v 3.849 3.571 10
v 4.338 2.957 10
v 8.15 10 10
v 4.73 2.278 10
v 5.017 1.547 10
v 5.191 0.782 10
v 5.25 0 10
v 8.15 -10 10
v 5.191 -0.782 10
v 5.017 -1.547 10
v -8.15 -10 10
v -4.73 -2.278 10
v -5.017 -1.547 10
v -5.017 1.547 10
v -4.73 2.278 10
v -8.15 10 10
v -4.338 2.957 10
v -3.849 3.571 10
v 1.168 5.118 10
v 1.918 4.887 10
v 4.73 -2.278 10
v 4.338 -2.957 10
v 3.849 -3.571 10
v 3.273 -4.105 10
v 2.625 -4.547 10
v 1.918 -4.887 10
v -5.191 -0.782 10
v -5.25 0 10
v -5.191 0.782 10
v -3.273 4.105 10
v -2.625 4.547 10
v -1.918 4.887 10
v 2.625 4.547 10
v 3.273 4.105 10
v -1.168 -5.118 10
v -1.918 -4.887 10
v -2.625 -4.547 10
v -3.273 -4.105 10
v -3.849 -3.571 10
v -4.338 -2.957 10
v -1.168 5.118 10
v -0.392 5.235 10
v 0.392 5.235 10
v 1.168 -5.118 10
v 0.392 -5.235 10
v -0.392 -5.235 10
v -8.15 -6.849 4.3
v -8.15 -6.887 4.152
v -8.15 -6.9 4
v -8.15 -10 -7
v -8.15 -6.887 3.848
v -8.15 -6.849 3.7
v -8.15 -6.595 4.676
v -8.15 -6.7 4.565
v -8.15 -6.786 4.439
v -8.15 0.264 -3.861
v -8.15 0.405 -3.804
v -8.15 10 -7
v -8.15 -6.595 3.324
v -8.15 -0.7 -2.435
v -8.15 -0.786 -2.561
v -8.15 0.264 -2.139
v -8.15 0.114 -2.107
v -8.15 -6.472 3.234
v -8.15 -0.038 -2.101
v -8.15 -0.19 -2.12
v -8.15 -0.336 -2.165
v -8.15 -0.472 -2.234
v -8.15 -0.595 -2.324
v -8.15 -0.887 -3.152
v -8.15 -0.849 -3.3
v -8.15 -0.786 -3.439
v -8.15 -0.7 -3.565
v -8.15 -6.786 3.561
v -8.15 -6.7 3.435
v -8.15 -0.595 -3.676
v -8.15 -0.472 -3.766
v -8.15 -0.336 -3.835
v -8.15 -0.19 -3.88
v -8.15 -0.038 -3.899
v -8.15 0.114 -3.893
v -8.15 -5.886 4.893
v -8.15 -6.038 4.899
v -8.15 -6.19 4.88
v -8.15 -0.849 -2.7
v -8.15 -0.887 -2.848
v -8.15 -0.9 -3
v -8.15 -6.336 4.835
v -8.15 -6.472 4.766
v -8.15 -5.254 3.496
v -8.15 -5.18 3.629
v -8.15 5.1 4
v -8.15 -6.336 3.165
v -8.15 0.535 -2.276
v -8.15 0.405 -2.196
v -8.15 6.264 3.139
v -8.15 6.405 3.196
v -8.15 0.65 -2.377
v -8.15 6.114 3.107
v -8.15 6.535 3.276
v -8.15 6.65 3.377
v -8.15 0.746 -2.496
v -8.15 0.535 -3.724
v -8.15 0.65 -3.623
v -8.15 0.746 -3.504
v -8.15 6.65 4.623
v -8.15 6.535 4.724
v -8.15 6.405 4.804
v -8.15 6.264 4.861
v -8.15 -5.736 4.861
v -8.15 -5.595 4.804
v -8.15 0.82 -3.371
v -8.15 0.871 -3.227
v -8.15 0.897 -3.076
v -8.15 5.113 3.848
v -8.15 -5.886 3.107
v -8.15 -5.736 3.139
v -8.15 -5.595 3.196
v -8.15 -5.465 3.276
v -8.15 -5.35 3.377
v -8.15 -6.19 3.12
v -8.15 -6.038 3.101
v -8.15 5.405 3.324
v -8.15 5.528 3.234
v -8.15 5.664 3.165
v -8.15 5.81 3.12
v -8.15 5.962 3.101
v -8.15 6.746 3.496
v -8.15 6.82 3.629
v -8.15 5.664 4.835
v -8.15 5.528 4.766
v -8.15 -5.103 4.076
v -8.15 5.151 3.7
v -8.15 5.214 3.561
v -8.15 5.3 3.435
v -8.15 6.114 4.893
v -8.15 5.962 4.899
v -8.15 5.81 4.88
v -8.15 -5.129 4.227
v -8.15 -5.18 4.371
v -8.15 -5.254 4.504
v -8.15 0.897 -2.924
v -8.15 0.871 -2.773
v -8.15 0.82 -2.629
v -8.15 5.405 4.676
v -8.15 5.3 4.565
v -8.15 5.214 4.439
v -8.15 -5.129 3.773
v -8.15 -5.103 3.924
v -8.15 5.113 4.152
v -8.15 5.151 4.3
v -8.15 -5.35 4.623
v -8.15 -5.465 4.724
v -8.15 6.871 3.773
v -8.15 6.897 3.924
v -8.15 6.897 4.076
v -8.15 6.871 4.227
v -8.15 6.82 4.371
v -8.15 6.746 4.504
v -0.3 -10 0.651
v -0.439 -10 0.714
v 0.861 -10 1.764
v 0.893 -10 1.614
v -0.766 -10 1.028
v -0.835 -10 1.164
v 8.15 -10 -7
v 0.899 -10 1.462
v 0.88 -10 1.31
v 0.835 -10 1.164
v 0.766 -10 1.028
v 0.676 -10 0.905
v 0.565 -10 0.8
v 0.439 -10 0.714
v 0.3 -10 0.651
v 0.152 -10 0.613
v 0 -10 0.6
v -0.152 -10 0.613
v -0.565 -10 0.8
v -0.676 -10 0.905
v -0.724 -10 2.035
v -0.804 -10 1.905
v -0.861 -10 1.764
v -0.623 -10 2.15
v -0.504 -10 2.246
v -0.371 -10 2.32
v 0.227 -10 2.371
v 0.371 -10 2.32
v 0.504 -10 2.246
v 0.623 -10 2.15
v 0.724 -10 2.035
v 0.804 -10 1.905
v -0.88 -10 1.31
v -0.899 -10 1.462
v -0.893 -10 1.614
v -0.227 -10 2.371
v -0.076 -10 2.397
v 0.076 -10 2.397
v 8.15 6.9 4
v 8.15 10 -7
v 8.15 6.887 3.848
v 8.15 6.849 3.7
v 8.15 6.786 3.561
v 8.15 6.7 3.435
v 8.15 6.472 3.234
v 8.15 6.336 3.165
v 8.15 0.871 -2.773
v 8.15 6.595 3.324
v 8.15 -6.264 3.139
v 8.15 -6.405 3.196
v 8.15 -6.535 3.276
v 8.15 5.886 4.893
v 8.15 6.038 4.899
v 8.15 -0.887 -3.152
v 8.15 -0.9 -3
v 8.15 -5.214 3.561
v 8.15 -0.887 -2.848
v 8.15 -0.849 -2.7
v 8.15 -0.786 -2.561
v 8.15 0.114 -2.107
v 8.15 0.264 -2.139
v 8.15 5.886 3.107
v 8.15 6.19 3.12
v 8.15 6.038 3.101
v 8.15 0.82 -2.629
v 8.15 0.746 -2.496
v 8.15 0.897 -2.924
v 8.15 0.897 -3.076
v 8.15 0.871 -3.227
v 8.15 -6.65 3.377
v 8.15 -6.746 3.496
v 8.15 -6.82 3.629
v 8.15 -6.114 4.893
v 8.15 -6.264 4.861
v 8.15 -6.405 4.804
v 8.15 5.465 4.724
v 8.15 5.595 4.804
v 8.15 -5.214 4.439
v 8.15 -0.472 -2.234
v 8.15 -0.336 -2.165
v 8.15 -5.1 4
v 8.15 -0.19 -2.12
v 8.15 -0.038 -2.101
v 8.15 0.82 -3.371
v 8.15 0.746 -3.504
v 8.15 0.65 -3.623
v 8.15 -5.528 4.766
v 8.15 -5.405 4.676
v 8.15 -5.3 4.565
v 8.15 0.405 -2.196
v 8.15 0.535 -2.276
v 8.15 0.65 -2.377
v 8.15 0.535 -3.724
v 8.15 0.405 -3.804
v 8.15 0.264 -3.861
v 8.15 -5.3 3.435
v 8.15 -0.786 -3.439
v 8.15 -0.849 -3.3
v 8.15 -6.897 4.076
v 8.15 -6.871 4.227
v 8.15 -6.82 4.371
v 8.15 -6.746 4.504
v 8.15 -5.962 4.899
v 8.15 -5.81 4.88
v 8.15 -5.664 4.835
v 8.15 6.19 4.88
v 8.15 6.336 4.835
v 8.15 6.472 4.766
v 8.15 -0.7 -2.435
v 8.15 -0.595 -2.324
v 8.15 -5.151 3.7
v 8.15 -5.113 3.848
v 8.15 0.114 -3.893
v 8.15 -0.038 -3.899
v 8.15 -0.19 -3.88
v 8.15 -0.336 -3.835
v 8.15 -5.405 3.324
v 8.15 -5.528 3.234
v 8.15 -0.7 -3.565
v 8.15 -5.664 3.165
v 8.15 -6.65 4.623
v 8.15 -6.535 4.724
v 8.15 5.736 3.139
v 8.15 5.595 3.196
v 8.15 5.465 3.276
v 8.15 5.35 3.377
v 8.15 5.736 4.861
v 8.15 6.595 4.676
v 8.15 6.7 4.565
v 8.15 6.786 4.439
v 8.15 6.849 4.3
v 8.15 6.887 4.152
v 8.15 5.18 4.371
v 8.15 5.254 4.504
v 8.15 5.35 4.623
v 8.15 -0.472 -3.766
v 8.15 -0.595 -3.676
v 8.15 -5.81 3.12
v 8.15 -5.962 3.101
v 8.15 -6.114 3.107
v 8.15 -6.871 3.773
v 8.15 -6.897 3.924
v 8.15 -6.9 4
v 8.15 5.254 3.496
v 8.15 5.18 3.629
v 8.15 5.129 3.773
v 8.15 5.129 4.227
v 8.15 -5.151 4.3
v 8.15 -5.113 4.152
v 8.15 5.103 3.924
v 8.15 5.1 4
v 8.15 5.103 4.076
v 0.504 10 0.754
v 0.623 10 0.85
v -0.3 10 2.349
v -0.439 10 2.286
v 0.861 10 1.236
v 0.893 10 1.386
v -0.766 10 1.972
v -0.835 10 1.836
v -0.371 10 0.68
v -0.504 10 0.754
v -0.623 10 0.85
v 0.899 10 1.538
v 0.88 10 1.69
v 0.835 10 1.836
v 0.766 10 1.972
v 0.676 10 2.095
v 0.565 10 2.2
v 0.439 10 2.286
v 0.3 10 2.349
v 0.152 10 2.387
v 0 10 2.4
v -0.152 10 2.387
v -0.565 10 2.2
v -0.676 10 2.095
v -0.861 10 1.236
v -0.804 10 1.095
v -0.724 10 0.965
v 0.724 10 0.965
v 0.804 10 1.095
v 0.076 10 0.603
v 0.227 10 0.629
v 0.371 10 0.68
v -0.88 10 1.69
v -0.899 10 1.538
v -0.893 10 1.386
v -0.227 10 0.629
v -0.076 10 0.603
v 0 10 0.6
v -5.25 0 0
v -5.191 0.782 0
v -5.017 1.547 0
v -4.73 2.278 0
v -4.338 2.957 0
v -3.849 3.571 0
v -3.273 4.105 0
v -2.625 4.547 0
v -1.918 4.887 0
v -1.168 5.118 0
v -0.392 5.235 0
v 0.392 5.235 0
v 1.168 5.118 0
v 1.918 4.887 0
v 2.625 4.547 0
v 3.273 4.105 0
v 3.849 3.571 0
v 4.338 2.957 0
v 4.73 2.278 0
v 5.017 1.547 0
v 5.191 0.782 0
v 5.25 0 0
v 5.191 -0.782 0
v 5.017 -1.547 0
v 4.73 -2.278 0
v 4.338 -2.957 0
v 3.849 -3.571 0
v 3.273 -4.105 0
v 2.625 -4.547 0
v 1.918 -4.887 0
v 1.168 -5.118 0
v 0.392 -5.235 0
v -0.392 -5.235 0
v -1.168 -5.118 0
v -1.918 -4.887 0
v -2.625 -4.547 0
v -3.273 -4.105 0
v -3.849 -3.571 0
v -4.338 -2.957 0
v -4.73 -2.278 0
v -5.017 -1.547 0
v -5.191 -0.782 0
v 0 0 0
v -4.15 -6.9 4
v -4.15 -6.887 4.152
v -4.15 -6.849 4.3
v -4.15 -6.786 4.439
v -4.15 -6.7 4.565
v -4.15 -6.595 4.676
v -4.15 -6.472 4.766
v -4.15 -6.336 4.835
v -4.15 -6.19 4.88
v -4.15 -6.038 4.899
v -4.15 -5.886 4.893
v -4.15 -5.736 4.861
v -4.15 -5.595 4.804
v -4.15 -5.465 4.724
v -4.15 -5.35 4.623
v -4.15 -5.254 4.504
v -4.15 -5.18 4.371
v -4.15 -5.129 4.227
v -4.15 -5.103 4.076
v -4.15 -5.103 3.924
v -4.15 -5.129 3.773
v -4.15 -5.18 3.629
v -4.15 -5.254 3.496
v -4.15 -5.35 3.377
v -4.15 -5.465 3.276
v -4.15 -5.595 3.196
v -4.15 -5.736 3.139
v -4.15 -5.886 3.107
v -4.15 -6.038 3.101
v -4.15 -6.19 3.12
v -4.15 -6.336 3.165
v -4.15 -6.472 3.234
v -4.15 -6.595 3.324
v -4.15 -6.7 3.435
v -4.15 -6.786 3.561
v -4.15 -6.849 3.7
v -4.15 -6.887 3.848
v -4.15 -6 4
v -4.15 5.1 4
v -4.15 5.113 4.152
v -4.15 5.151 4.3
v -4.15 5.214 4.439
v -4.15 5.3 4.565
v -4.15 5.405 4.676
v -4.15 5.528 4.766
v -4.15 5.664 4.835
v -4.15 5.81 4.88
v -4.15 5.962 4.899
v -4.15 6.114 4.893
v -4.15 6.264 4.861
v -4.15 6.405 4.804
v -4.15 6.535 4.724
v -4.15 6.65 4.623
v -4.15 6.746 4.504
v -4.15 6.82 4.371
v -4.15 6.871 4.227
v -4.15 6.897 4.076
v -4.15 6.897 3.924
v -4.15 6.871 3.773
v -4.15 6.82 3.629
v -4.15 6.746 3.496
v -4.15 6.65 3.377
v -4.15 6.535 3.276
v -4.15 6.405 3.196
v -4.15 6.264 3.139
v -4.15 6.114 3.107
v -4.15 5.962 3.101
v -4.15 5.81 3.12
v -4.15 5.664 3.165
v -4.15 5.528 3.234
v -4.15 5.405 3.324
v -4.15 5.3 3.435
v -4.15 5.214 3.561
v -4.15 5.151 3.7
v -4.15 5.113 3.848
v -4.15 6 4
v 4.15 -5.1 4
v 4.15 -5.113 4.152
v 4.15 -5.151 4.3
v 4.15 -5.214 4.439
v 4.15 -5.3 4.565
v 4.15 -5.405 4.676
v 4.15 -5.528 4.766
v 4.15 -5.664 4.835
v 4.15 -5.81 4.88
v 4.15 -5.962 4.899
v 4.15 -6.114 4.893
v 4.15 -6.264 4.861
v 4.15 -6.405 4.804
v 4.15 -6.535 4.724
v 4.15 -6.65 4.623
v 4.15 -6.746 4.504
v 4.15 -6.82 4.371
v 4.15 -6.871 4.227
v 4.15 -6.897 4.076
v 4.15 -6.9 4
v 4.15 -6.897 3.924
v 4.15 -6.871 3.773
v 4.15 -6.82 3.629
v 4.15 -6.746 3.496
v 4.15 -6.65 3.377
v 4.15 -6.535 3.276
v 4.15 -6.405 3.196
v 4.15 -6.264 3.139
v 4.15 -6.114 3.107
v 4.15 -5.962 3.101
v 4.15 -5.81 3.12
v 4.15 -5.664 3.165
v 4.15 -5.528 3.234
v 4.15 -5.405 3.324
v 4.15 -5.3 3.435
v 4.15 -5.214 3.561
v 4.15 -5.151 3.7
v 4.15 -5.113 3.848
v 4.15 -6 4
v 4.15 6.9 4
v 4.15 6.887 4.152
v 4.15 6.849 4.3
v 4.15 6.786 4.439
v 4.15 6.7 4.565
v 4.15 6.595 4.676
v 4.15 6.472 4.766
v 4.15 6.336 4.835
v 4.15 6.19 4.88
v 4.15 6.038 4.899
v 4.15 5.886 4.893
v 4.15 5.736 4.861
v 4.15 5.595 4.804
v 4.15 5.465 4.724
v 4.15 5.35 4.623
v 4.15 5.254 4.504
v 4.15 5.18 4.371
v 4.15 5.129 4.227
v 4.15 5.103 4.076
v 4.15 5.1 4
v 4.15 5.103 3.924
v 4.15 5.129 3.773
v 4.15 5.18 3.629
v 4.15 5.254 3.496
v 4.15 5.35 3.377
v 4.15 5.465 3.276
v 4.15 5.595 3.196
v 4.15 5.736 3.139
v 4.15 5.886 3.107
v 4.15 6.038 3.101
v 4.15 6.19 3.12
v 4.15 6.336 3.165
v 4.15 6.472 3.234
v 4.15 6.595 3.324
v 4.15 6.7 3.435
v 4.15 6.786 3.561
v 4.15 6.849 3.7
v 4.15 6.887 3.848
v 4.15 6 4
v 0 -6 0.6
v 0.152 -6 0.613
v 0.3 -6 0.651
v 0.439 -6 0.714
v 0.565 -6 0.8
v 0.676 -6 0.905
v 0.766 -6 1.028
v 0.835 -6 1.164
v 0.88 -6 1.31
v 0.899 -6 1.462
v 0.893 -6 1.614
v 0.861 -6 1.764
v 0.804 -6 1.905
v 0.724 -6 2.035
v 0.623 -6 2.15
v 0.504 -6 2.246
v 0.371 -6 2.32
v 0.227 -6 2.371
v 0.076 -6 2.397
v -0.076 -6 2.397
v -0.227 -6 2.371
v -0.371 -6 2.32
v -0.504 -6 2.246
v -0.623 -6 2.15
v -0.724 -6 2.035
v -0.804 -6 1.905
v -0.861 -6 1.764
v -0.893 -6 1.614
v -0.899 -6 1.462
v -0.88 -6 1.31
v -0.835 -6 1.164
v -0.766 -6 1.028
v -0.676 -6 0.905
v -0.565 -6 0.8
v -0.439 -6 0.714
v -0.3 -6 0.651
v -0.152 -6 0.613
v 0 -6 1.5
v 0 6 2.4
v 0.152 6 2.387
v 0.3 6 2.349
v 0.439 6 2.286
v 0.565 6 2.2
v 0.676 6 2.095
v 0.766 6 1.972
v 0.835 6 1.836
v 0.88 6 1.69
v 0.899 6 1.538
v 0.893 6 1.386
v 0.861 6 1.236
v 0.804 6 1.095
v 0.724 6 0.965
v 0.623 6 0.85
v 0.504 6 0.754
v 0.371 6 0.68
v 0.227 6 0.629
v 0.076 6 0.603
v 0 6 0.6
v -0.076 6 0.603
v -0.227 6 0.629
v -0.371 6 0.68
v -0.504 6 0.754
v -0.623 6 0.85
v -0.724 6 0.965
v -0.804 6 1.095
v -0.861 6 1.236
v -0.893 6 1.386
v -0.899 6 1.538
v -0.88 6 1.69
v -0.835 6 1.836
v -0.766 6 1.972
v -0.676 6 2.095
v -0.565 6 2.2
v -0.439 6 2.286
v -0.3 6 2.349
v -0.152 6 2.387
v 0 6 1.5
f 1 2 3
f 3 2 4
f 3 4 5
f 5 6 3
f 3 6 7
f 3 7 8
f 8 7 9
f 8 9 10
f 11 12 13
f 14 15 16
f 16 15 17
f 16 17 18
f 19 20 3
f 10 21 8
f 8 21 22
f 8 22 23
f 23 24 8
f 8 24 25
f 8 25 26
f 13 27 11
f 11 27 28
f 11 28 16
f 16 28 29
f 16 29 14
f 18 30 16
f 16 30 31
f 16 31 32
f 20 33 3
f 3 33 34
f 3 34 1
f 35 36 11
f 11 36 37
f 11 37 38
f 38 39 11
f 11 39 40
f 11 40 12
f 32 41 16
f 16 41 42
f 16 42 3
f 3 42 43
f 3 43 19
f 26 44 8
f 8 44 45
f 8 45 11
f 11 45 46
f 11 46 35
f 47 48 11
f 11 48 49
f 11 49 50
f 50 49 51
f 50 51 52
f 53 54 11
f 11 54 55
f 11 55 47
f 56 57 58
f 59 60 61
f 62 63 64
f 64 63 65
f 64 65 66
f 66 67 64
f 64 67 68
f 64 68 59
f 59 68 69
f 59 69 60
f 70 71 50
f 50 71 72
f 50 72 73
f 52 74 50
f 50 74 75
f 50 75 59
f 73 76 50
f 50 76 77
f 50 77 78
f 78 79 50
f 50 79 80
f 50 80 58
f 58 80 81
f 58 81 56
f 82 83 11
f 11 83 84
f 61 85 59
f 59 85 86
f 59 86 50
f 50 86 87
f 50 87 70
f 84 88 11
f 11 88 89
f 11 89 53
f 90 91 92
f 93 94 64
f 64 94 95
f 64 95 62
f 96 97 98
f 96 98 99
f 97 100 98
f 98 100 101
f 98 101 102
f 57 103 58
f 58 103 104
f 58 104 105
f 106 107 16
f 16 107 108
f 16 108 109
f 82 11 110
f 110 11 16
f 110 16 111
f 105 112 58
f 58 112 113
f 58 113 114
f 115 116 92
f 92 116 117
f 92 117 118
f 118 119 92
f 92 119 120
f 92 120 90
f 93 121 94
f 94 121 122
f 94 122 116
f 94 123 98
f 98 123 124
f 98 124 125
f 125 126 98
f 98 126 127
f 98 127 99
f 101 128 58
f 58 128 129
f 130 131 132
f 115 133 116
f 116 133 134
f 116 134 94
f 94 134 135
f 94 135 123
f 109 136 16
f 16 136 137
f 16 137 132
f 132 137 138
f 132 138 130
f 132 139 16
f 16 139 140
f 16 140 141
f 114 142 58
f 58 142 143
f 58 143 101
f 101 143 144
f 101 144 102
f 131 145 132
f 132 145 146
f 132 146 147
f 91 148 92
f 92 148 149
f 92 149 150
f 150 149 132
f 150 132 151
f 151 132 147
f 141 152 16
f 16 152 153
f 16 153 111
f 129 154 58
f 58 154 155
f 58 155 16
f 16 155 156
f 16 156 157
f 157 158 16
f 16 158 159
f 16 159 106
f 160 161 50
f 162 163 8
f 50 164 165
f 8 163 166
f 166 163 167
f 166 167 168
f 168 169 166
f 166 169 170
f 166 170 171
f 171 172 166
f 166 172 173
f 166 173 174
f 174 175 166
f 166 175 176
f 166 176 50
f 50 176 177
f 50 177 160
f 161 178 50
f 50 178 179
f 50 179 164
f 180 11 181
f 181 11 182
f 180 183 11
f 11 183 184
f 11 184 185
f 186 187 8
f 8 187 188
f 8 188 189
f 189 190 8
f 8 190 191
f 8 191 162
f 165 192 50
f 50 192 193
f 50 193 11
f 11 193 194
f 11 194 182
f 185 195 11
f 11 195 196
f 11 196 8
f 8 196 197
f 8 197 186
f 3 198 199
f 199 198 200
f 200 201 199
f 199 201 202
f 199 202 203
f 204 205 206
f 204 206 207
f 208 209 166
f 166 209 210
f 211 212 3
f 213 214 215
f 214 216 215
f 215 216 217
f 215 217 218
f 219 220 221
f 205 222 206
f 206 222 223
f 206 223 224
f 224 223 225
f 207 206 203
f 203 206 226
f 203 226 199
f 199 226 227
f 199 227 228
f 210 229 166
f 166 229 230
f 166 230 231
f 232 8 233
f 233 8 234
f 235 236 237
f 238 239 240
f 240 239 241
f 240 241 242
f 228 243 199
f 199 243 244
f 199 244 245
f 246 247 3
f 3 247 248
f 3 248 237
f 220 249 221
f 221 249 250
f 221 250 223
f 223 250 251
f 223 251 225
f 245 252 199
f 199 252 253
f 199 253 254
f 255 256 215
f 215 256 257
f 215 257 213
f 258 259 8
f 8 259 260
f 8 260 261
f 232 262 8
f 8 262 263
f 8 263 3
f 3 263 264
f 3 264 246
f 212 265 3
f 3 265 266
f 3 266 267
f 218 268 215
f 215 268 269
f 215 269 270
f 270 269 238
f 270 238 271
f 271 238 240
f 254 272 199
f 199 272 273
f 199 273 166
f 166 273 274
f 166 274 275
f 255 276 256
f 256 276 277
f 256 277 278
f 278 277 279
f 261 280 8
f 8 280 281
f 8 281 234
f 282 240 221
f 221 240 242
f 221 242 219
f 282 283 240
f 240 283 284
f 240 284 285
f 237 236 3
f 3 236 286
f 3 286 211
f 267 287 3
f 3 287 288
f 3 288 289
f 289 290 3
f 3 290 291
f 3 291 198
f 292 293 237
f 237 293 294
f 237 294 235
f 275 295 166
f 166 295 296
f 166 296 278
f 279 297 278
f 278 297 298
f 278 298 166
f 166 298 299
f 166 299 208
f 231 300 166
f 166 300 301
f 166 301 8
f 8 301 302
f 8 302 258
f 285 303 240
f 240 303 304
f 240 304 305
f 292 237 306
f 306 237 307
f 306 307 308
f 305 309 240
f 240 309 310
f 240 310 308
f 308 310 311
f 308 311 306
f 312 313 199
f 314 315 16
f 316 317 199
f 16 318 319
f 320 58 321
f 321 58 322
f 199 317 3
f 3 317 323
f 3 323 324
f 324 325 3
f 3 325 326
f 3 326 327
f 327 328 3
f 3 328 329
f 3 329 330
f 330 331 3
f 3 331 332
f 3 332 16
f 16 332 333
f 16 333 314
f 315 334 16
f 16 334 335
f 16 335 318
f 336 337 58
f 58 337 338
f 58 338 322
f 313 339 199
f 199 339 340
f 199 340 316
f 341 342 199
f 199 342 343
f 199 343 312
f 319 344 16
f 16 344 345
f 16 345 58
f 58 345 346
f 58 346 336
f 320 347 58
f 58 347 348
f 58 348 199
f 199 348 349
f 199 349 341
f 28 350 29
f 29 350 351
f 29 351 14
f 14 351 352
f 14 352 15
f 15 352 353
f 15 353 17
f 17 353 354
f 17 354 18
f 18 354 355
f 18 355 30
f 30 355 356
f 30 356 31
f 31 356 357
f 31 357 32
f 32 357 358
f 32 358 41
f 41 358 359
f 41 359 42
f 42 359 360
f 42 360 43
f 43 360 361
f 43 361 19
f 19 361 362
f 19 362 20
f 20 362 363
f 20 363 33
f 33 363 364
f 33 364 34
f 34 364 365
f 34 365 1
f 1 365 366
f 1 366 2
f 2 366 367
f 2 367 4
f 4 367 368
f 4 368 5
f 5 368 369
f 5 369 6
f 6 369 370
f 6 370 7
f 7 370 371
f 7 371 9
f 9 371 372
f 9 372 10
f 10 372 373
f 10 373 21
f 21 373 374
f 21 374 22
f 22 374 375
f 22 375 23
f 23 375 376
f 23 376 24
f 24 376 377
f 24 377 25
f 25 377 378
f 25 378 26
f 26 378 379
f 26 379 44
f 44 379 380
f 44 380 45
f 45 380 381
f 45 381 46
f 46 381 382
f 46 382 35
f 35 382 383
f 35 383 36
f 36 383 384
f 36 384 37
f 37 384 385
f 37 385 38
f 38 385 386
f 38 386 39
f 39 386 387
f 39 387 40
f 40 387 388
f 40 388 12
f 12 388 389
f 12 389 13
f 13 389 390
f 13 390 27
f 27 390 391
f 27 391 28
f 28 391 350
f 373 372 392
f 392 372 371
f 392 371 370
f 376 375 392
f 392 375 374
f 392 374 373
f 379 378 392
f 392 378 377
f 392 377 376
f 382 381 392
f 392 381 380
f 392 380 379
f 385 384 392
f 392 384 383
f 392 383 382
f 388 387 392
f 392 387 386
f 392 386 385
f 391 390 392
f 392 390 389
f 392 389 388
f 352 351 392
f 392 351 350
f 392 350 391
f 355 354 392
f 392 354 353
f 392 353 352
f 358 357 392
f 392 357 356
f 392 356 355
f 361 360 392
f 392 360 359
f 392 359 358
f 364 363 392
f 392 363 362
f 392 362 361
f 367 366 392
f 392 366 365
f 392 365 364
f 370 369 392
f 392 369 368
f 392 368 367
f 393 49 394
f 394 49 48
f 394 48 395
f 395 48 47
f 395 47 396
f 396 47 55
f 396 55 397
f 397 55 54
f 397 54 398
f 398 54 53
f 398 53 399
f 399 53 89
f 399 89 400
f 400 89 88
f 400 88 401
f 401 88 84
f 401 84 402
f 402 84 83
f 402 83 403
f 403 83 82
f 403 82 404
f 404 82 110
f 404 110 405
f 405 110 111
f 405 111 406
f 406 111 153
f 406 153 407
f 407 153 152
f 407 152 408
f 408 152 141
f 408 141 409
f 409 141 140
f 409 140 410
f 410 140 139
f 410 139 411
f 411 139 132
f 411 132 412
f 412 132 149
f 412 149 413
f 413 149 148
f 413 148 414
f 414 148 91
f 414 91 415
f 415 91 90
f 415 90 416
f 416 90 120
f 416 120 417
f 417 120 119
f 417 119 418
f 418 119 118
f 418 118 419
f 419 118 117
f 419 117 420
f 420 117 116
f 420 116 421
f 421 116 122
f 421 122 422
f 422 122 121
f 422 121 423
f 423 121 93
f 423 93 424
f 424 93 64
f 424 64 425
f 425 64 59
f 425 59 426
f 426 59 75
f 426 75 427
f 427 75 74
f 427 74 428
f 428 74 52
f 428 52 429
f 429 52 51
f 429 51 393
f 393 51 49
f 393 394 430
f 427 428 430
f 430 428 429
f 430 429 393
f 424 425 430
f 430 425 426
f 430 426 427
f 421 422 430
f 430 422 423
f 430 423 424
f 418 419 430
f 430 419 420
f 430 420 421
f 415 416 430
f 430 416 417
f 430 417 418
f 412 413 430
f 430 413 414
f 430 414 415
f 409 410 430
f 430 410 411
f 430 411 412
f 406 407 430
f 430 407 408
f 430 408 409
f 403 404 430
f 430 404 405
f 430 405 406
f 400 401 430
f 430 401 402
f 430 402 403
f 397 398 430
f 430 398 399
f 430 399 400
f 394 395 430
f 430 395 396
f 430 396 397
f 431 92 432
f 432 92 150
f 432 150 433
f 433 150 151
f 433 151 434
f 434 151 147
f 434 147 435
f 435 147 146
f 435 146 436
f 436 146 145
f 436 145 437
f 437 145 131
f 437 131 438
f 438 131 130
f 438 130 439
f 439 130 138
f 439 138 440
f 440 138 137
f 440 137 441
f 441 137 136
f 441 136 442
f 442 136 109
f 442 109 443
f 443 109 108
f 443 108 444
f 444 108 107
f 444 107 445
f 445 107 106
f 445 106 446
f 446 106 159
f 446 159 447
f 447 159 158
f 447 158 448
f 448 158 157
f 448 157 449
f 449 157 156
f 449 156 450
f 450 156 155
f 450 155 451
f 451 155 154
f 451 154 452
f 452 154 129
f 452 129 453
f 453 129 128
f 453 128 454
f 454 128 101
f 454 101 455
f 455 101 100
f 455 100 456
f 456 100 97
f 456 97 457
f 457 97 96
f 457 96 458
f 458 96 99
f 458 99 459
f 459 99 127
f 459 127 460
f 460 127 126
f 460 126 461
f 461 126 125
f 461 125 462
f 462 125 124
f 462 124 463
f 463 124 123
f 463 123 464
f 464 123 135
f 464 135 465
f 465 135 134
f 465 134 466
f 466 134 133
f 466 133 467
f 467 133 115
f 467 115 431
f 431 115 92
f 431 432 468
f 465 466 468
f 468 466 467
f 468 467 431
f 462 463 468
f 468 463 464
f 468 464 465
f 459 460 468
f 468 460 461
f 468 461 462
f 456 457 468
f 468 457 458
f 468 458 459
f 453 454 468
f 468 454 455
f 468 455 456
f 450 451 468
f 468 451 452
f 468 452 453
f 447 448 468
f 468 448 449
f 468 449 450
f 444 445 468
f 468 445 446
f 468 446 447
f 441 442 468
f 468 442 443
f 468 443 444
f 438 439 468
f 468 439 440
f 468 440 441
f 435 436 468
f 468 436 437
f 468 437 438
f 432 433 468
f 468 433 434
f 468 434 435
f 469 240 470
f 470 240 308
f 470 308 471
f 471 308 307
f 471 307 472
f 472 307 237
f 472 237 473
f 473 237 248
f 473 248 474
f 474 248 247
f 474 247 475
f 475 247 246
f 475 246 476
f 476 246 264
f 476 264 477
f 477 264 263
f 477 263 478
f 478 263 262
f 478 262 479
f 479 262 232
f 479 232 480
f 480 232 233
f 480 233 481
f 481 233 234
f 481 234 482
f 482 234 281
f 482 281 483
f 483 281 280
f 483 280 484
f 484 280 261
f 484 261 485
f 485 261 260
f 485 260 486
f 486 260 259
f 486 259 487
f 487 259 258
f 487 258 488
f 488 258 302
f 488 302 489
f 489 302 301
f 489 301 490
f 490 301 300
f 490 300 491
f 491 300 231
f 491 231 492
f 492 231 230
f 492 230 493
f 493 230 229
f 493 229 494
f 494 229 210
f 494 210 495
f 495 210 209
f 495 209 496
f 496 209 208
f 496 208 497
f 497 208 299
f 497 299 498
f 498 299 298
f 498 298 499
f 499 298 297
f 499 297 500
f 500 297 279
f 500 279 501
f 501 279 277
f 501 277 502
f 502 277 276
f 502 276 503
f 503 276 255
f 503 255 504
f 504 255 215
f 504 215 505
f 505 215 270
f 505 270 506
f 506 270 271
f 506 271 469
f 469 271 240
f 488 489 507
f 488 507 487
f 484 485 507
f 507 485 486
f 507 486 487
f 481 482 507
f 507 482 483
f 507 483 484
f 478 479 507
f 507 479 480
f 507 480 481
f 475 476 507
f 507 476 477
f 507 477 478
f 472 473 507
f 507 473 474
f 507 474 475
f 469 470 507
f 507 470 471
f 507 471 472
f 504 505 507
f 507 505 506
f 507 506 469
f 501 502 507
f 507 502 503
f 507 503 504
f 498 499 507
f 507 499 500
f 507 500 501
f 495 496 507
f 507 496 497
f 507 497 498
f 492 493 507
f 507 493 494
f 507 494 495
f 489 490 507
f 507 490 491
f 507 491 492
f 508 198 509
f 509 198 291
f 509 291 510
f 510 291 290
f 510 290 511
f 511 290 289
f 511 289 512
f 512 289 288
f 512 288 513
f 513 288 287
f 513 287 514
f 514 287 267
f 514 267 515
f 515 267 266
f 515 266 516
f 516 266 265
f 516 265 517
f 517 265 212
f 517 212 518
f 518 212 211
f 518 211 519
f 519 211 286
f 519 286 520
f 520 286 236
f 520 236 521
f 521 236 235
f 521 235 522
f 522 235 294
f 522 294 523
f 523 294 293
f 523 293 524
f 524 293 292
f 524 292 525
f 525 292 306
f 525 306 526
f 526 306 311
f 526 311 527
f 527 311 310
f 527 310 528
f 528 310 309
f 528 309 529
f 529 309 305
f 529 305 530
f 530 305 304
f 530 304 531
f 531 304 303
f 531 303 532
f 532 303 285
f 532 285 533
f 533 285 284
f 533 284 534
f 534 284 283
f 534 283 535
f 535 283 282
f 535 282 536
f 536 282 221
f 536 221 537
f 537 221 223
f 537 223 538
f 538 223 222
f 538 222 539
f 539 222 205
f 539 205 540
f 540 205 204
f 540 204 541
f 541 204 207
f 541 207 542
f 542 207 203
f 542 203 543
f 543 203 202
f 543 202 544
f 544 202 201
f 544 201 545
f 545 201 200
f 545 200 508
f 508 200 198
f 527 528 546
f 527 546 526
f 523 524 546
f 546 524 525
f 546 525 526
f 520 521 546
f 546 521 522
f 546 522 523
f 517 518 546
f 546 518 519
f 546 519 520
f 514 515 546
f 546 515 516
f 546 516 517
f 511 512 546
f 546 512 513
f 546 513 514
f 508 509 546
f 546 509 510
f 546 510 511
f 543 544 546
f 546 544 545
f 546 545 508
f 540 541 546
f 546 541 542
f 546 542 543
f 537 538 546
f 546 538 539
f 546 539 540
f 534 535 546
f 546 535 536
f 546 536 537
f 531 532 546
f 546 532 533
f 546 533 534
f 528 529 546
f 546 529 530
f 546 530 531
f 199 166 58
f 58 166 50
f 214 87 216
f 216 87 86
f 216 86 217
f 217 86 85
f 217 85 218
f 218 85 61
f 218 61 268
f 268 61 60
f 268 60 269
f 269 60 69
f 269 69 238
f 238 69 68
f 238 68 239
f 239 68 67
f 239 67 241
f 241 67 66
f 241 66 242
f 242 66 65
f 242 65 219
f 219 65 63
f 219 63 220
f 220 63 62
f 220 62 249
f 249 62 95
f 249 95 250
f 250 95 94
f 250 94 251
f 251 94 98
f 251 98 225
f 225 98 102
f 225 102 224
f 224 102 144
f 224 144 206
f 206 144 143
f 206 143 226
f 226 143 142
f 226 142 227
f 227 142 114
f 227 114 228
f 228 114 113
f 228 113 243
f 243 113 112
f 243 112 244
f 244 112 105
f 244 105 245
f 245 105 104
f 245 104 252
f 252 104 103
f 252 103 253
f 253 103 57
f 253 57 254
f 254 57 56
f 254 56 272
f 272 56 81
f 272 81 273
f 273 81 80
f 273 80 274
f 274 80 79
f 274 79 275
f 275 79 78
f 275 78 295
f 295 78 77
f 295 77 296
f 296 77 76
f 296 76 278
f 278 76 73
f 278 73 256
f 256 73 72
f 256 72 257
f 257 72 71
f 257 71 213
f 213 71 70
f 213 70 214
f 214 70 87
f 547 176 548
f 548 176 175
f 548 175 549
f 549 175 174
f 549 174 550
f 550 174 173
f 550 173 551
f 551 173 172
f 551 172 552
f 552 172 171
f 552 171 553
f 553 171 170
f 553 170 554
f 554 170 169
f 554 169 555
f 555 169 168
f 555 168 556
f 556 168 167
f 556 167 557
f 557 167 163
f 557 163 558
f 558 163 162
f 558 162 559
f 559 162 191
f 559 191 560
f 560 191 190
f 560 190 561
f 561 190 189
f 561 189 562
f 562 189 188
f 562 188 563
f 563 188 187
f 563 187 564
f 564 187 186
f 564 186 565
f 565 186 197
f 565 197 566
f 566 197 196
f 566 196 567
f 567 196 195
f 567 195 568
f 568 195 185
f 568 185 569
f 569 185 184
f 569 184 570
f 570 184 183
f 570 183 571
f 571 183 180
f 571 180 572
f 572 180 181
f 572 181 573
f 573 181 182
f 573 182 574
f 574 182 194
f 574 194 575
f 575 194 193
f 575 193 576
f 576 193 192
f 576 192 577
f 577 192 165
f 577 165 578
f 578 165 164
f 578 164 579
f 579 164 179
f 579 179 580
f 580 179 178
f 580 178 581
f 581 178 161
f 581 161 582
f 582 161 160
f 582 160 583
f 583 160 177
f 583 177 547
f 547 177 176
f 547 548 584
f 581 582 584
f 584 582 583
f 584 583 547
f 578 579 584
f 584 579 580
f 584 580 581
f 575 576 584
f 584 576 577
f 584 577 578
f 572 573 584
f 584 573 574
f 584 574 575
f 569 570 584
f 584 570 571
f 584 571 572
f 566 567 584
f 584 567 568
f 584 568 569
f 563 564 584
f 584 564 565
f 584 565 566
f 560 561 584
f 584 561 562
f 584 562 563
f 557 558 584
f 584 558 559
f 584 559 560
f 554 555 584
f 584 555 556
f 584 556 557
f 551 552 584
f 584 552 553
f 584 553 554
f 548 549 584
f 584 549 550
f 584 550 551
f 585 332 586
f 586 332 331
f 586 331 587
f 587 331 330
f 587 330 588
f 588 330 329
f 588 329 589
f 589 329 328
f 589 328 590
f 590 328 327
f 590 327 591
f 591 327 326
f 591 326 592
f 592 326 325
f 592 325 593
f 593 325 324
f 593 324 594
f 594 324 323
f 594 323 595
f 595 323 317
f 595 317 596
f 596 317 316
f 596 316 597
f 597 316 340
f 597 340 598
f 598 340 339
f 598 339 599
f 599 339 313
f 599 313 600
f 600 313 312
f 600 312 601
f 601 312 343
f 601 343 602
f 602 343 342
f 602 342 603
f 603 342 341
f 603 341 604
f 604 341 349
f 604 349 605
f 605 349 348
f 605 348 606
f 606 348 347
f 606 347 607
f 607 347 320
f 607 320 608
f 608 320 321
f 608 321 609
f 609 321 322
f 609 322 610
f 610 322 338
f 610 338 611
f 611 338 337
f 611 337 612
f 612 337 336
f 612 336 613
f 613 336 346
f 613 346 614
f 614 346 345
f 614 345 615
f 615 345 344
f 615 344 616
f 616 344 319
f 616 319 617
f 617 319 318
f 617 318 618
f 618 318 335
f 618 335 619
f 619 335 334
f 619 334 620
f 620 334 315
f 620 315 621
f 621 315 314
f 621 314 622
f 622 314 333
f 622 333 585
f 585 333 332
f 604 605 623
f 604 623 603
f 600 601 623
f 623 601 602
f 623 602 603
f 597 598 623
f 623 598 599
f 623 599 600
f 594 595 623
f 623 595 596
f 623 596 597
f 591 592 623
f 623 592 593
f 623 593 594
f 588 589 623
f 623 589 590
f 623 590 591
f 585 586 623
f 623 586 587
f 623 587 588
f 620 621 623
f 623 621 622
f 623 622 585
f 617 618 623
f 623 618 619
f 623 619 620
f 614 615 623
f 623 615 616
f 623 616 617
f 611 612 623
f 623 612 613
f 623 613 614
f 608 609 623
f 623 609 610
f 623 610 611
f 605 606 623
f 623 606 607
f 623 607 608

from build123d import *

# Parameters (mm, degrees)
SKETCH_1_W          = 16.3
SKETCH_1_H          = 20
SKETCH_1_R          = 5.25
EXTRUDE_1_DEPTH     = 10
SKETCH_1_6_W        = 16.3
SKETCH_1_6_H        = 20
EXTRUDE_2_DEPTH     = 2
SKETCH_2_R          = 0.9
CUT_EXTRUDE_1_DEPTH = 4
CUT_EXTRUDE_START   = -12.3
SKETCH_2_2_R        = 0.9
CUT_EXTRUDE_2_DEPTH = 4
SKETCH_3_W          = 5
SKETCH_3_H          = 20
EXTRUDE_3_DEPTH     = 16.3
SKETCH_5_R          = 0.9
CUT_EXTRUDE_3_DEPTH = 22.579851714
SKETCH_6_R          = 0.9
CUT_EXTRUDE_4_DEPTH = 4
CUT_EXTRUDE_START_2 = -16
SKETCH_6_3_R        = 0.9
CUT_EXTRUDE_5_DEPTH = 4


with BuildPart() as part:
    # 草图1 → 凸台-拉伸1 (new body)
    with BuildSketch(Plane.XY):
        Rectangle(SKETCH_1_W, SKETCH_1_H)
        Circle(SKETCH_1_R, mode=Mode.SUBTRACT)
    extrude(amount=EXTRUDE_1_DEPTH)

    # 草图1<6> → 凸台-拉伸2 (add)
    with BuildSketch(Plane.XY):
        Rectangle(SKETCH_1_6_W, SKETCH_1_6_H)
    extrude(amount=-EXTRUDE_2_DEPTH)

    # 草图2 → 切除-拉伸1 (cut)
    with BuildSketch(Plane.ZY.offset(8.15)):
        with Locations(Location((4, 6, 0), (0, 0, 270))):
            Circle(SKETCH_2_R)
        with Locations(Location((4, -6, 0), (0, 0, 270))):
            Circle(SKETCH_2_R)
    extrude(amount=-CUT_EXTRUDE_1_DEPTH, mode=Mode.SUBTRACT)

    # 草图2<2> → 切除-拉伸2 (cut)
    with BuildSketch(Plane.ZY.offset(8.15).offset(CUT_EXTRUDE_START)):
        with Locations(Location((4, 6, 0), (0, 0, 270))):
            Circle(SKETCH_2_2_R)
        with Locations(Location((4, -6, 0), (0, 0, 270))):
            Circle(SKETCH_2_2_R)
    extrude(amount=-CUT_EXTRUDE_2_DEPTH, mode=Mode.SUBTRACT)

    # 草图3 → 凸台-拉伸3 (add)
    with BuildSketch(Plane(origin=(8.15, 0, 0), x_dir=(0, 0, -1), z_dir=(1, 0, 0))):
        with Locations((4.5, 0)):
            Rectangle(SKETCH_3_W, SKETCH_3_H)
    extrude(amount=-EXTRUDE_3_DEPTH)

    # 草图5 → 切除-拉伸3 (cut, through all)
    with BuildSketch(Plane.ZY.offset(8.15)):
        with Locations(Location((-3, 0, 0), (0, 0, 270))):
            Circle(SKETCH_5_R)
    extrude(amount=-CUT_EXTRUDE_3_DEPTH, mode=Mode.SUBTRACT)

    # 草图6 → 切除-拉伸4 (cut)
    with BuildSketch(Plane.XZ.offset(10)):
        with Locations(Location((0, 1.5, 0), (0, 0, 270))):
            Circle(SKETCH_6_R)
    extrude(amount=-CUT_EXTRUDE_4_DEPTH, mode=Mode.SUBTRACT)

    # 草图6<3> → 切除-拉伸5 (cut)
    with BuildSketch(Plane.XZ.offset(10).offset(CUT_EXTRUDE_START_2)):
        with Locations(Location((0, 1.5, 0), (0, 0, 270))):
            Circle(SKETCH_6_3_R)
    extrude(amount=-CUT_EXTRUDE_5_DEPTH, mode=Mode.SUBTRACT)


solid = part.part
